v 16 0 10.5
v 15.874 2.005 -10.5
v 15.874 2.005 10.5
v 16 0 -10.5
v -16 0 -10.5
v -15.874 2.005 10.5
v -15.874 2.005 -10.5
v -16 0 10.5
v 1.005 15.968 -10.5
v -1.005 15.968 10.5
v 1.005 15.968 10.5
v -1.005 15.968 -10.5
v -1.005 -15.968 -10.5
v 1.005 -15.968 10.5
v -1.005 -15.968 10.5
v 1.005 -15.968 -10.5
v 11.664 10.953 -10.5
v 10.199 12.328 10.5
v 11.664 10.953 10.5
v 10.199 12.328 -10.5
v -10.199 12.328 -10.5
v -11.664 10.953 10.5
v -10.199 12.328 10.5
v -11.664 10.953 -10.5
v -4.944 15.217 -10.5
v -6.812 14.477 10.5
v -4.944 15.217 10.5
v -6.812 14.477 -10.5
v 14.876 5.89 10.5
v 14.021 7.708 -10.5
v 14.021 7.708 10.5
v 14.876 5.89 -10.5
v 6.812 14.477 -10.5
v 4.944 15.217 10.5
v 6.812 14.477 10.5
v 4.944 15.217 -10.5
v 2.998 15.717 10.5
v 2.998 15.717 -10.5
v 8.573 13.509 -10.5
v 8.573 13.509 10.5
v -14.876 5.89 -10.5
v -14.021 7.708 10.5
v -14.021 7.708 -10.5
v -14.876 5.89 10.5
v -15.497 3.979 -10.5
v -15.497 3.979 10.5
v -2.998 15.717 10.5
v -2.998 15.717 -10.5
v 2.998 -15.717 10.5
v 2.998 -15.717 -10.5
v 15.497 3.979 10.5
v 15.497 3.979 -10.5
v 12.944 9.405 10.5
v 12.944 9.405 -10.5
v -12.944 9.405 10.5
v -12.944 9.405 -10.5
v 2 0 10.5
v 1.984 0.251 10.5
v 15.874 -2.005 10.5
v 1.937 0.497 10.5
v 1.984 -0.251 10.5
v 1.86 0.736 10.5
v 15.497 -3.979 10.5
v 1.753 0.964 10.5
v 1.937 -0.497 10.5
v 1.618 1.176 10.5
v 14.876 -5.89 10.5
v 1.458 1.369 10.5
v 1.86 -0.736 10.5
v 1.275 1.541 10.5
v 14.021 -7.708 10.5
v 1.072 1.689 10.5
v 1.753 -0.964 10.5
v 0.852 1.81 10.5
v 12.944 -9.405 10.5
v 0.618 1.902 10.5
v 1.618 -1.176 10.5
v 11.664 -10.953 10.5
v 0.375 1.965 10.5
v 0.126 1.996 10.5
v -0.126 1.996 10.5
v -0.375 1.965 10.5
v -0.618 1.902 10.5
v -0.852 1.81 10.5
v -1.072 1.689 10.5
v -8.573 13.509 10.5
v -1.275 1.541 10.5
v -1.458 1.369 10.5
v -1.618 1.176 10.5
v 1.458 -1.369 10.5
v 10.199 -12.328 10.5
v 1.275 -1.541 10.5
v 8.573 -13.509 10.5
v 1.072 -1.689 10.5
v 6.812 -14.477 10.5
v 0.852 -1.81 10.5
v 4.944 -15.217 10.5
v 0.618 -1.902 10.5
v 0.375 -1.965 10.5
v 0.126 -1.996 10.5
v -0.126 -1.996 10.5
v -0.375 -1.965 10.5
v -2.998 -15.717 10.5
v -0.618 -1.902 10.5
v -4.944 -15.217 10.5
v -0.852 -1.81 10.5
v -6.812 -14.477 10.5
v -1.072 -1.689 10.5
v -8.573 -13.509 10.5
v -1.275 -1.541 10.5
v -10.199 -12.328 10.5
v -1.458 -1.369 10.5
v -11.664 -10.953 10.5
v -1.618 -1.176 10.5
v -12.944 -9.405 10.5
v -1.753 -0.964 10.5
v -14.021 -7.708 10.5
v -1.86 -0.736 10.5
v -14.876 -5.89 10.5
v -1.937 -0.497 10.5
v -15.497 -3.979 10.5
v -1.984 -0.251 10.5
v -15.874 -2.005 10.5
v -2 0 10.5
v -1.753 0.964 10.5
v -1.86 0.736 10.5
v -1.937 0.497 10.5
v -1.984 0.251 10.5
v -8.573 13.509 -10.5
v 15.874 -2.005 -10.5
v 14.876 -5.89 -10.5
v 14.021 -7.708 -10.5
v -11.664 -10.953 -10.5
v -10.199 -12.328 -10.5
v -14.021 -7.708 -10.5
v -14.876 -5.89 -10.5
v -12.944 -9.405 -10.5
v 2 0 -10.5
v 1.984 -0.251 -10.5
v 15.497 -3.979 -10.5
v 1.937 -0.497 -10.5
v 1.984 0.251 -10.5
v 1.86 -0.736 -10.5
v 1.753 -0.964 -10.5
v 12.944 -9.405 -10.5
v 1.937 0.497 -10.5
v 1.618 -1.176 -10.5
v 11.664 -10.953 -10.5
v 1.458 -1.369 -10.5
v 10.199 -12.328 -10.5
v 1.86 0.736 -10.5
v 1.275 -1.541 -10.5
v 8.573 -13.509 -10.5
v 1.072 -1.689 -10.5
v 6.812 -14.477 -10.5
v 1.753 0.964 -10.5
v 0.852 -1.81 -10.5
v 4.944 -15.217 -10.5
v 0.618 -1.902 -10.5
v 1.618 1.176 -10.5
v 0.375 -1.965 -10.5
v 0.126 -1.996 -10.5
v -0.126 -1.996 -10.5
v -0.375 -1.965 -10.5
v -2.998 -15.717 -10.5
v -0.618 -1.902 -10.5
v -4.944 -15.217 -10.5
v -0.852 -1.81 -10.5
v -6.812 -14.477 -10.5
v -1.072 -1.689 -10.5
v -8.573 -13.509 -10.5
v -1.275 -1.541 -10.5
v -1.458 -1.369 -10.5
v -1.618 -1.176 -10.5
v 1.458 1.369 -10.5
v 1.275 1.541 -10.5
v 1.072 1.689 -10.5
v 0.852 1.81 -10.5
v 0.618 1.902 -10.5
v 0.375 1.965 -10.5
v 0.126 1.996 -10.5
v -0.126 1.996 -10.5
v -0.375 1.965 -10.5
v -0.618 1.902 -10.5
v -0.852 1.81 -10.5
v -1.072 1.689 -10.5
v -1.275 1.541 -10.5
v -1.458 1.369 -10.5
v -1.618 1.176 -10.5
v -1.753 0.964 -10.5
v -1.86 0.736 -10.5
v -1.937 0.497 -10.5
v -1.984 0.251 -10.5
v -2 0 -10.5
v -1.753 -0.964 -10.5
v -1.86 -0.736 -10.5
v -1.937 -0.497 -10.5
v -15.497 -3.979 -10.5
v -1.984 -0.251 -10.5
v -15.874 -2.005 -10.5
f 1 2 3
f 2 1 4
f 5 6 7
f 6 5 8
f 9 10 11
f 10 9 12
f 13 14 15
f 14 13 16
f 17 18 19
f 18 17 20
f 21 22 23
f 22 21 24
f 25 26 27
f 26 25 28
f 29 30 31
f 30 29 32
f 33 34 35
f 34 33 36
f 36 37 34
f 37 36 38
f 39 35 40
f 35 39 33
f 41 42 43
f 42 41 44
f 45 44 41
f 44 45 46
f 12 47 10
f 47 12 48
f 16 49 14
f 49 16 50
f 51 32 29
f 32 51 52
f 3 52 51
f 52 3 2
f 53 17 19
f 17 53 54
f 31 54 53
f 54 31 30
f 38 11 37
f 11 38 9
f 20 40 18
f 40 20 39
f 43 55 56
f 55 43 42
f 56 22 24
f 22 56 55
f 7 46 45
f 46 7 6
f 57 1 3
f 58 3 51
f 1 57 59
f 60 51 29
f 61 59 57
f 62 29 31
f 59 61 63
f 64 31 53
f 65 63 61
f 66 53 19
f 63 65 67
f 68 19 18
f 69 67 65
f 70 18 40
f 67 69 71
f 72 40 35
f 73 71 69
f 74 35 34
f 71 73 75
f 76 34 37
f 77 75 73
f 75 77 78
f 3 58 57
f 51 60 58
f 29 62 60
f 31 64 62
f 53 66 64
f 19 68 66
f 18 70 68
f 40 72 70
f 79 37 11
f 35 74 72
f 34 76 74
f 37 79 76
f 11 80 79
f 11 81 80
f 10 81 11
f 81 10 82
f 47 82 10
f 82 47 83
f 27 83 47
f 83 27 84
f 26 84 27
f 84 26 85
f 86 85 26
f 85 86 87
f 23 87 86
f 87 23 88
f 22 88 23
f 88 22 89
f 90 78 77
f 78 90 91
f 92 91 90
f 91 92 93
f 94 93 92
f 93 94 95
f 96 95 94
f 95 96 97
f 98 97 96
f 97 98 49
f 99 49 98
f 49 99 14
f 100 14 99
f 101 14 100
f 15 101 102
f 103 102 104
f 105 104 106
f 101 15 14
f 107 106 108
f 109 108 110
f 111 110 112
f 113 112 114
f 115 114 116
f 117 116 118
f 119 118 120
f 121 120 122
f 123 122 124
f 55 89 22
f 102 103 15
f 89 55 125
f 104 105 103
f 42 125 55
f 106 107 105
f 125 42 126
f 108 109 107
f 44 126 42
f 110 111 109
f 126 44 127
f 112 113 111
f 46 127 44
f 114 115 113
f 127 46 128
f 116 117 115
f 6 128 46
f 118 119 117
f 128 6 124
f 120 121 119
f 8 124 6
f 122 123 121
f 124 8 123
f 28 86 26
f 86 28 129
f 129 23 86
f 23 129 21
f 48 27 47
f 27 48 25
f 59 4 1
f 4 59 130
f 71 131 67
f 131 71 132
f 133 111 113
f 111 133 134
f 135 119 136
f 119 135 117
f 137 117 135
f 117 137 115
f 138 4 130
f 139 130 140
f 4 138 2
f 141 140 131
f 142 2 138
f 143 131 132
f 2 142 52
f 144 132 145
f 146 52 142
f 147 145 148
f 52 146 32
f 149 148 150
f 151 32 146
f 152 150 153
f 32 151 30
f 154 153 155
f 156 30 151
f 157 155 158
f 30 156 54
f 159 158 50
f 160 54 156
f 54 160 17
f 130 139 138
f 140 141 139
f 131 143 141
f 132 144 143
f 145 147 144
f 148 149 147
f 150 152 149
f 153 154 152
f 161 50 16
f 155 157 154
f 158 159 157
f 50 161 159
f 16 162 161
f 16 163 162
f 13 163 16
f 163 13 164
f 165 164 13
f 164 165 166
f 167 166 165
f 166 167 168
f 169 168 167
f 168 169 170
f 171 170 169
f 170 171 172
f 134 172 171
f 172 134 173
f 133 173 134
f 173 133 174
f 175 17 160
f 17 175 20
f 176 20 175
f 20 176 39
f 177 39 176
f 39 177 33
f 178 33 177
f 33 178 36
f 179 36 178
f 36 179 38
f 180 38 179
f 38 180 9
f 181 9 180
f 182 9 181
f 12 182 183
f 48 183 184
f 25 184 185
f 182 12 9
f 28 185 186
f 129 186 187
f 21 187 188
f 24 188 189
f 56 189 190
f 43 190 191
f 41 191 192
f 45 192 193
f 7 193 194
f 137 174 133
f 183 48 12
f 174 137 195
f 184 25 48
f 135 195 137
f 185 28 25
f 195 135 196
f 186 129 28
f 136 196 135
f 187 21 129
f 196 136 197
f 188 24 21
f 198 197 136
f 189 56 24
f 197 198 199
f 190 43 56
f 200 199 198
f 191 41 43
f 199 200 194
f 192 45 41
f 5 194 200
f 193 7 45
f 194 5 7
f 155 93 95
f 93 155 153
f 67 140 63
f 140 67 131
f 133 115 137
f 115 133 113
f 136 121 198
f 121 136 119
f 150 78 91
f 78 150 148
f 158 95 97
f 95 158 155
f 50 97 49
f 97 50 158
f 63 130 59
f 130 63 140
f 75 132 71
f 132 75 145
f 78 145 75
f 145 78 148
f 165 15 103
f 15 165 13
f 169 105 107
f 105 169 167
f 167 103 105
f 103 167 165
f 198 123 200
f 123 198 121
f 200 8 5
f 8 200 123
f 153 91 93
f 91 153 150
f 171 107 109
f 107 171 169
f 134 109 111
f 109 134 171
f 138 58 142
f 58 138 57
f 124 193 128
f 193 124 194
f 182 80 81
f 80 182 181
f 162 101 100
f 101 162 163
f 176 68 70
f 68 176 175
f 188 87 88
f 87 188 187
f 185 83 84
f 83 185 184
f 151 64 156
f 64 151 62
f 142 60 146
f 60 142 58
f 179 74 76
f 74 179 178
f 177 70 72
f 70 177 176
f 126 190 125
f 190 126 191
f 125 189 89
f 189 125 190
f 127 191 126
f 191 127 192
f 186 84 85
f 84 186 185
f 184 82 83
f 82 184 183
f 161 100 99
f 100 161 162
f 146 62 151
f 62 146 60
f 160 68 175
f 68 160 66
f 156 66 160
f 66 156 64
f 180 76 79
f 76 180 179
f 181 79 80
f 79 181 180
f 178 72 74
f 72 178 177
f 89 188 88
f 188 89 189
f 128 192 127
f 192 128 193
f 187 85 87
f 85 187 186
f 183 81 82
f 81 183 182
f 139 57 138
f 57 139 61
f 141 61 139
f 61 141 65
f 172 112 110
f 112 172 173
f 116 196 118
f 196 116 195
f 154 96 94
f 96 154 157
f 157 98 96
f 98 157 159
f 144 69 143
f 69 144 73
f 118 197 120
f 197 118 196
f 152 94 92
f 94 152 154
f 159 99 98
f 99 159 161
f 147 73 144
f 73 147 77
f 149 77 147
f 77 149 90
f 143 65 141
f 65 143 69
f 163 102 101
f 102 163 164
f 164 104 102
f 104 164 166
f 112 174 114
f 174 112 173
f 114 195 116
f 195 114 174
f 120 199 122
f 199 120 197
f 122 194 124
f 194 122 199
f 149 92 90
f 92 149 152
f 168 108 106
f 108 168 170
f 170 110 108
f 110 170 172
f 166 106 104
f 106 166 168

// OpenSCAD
$fn = 50;


difference() {
	union() {
		translate(v = [0, 0, -10.5000000000]) {
			cylinder(h = 21, r = 16.0000000000);
		}
	}
	union() {
		translate(v = [0, 0, -100.0000000000]) {
			cylinder(h = 200, r = 2);
		}
	}
}
